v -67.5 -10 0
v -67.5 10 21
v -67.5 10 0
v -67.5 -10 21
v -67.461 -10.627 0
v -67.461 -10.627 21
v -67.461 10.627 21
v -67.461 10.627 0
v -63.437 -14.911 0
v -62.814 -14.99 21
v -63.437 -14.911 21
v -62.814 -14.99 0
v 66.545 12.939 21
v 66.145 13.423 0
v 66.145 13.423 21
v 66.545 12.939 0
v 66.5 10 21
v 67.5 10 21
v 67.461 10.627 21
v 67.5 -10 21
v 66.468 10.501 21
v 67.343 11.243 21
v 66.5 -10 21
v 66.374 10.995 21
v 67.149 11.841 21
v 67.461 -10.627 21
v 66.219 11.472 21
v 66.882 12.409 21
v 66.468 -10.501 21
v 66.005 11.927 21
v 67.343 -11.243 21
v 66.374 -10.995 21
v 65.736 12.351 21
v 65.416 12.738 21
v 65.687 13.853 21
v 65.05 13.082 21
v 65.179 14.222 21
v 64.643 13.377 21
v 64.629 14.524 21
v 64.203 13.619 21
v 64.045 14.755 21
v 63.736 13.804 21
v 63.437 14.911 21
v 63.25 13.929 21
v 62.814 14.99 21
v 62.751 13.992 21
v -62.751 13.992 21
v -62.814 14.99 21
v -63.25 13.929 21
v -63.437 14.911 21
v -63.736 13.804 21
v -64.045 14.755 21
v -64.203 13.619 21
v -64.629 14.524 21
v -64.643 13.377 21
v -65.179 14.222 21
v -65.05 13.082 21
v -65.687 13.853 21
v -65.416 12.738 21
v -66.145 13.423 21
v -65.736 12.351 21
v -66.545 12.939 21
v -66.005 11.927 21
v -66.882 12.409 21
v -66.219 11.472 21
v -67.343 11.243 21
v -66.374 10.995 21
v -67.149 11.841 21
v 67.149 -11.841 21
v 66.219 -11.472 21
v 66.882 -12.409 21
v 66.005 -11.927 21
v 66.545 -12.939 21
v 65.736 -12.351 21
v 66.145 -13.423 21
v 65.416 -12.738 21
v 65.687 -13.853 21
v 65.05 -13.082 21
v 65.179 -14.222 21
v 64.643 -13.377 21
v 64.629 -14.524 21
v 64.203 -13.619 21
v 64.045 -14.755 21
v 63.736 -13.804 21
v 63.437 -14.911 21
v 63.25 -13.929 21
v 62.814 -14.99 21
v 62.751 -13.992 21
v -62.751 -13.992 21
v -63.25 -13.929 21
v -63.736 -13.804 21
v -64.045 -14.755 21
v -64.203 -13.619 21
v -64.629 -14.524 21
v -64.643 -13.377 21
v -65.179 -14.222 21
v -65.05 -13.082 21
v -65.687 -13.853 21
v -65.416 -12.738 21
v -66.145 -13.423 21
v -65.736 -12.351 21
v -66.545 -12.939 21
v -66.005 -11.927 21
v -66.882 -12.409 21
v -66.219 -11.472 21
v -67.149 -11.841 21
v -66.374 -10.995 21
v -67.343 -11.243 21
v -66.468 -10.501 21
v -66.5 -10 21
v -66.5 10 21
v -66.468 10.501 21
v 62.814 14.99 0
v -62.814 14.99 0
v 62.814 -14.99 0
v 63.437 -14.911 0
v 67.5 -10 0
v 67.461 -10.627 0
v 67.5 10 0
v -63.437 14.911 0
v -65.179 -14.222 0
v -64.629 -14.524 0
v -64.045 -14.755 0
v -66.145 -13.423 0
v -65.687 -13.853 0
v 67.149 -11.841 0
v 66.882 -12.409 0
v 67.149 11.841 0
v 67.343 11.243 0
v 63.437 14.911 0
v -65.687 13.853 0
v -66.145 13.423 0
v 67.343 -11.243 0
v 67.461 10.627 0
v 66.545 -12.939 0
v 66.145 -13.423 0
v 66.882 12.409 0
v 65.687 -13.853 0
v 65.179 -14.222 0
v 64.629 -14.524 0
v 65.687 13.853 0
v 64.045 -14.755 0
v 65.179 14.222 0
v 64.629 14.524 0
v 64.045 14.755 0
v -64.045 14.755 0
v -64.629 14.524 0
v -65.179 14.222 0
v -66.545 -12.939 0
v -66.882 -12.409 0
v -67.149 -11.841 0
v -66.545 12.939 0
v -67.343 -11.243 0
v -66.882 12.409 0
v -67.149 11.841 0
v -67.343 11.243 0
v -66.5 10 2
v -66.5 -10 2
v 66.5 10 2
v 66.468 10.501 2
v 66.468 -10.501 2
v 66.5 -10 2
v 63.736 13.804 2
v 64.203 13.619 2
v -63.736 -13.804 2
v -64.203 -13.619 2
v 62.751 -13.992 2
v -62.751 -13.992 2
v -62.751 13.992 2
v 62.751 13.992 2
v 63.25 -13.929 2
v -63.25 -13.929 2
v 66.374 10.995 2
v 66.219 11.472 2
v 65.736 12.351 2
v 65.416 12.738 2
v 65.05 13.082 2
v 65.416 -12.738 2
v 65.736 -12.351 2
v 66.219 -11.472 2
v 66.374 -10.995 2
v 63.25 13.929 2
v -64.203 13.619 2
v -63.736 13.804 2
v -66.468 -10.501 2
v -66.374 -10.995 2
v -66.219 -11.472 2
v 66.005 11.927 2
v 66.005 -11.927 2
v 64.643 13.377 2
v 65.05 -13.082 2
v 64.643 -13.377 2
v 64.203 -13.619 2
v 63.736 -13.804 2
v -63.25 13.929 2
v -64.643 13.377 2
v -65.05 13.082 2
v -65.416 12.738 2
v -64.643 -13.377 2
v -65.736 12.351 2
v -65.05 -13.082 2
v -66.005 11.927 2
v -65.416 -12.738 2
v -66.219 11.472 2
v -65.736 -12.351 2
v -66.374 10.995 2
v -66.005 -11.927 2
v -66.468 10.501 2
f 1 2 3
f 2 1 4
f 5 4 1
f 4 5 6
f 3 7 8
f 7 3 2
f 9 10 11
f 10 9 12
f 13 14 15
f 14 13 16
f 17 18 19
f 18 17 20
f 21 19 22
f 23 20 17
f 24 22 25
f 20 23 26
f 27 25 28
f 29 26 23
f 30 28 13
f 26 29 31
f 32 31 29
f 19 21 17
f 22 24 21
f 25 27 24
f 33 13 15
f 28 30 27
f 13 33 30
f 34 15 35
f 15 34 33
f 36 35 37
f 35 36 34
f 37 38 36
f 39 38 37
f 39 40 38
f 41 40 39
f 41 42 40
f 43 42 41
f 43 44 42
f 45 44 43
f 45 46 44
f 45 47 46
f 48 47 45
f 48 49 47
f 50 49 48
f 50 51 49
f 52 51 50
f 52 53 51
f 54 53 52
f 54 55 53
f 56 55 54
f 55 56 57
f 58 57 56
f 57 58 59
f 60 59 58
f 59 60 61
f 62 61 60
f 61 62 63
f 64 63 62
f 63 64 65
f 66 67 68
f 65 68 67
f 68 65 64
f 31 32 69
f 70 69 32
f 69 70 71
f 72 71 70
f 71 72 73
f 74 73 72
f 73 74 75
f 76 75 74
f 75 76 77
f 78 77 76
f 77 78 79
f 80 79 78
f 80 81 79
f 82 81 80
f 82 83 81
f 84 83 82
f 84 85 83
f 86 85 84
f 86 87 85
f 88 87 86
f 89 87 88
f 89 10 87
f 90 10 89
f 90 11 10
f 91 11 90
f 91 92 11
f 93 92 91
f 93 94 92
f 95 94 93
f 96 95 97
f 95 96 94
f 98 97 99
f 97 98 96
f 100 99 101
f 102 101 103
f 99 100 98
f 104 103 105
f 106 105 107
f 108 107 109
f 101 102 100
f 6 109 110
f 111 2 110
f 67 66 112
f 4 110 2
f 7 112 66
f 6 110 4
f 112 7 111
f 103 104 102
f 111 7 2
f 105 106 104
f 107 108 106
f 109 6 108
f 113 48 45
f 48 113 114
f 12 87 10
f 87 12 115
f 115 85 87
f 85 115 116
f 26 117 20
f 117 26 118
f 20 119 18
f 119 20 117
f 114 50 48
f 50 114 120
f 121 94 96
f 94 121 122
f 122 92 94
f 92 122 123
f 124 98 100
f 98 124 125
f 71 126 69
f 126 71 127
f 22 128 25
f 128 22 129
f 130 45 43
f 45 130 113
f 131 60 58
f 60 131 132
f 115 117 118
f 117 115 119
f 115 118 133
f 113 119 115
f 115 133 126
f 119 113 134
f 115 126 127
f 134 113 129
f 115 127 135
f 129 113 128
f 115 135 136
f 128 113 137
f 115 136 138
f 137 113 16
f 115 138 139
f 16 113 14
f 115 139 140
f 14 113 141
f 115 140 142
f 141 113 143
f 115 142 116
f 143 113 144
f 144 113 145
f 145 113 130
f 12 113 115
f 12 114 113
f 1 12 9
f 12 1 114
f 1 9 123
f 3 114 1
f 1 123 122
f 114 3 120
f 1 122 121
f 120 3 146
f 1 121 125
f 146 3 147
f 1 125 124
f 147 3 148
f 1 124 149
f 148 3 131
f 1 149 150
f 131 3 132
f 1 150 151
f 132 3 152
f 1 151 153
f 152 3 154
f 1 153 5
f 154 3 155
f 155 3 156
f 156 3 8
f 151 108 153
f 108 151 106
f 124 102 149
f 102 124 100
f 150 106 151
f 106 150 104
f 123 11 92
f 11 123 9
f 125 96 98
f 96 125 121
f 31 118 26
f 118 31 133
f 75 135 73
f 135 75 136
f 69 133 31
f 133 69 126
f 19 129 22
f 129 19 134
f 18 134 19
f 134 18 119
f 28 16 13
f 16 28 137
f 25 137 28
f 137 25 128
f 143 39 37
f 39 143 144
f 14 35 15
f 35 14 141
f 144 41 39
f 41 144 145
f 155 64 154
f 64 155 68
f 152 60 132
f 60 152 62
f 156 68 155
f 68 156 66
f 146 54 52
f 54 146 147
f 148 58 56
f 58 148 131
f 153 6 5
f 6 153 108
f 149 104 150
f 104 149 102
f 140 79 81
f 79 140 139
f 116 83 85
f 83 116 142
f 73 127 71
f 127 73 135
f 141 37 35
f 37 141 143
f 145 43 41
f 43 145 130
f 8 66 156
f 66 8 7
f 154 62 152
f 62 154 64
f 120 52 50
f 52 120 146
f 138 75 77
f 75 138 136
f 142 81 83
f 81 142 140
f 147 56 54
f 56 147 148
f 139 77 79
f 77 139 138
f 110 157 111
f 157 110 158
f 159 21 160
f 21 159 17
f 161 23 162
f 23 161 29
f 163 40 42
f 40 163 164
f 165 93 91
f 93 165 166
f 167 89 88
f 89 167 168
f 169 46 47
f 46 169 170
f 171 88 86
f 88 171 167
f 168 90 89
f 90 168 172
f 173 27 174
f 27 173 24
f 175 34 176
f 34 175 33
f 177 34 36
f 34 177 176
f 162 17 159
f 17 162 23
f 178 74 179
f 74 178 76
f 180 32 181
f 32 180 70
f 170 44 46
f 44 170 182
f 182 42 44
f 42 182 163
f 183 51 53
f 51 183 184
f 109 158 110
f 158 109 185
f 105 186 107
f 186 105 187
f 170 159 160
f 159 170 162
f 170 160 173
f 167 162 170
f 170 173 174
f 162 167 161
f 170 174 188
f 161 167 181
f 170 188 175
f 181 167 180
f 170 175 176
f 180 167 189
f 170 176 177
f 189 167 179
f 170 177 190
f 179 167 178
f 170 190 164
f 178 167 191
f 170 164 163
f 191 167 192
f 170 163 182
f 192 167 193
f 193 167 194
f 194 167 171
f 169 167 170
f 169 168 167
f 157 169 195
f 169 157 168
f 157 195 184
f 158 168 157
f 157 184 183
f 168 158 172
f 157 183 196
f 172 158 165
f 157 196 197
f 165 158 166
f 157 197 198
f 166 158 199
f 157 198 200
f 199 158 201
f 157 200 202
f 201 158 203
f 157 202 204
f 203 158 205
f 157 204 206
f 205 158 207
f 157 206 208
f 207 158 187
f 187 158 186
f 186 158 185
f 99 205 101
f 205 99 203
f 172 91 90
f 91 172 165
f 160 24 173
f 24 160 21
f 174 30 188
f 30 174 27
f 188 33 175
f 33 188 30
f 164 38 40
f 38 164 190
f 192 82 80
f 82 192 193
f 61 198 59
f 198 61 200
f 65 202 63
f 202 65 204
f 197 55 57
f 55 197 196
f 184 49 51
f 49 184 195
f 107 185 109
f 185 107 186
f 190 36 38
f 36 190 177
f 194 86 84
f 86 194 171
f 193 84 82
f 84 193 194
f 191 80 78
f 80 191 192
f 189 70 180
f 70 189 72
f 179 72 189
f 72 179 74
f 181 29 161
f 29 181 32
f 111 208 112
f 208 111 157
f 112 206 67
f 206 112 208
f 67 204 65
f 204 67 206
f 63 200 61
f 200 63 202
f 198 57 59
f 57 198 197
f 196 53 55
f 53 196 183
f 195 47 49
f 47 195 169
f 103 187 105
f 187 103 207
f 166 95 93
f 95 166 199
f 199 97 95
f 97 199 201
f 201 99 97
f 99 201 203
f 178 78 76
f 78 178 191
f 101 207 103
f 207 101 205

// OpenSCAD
$fn = 50;


difference() {
	union() {
		hull() {
			translate(v = [-62.5000000000, 10.0000000000, 0]) {
				cylinder(h = 21, r = 5);
			}
			translate(v = [62.5000000000, 10.0000000000, 0]) {
				cylinder(h = 21, r = 5);
			}
			translate(v = [-62.5000000000, -10.0000000000, 0]) {
				cylinder(h = 21, r = 5);
			}
			translate(v = [62.5000000000, -10.0000000000, 0]) {
				cylinder(h = 21, r = 5);
			}
		}
	}
	union() {
		translate(v = [0, 0, 2]) {
			hull() {
				translate(v = [-62.5000000000, 10.0000000000, 0]) {
					cylinder(h = 19, r = 4);
				}
				translate(v = [62.5000000000, 10.0000000000, 0]) {
					cylinder(h = 19, r = 4);
				}
				translate(v = [-62.5000000000, -10.0000000000, 0]) {
					cylinder(h = 19, r = 4);
				}
				translate(v = [62.5000000000, -10.0000000000, 0]) {
					cylinder(h = 19, r = 4);
				}
			}
		}
	}
}
